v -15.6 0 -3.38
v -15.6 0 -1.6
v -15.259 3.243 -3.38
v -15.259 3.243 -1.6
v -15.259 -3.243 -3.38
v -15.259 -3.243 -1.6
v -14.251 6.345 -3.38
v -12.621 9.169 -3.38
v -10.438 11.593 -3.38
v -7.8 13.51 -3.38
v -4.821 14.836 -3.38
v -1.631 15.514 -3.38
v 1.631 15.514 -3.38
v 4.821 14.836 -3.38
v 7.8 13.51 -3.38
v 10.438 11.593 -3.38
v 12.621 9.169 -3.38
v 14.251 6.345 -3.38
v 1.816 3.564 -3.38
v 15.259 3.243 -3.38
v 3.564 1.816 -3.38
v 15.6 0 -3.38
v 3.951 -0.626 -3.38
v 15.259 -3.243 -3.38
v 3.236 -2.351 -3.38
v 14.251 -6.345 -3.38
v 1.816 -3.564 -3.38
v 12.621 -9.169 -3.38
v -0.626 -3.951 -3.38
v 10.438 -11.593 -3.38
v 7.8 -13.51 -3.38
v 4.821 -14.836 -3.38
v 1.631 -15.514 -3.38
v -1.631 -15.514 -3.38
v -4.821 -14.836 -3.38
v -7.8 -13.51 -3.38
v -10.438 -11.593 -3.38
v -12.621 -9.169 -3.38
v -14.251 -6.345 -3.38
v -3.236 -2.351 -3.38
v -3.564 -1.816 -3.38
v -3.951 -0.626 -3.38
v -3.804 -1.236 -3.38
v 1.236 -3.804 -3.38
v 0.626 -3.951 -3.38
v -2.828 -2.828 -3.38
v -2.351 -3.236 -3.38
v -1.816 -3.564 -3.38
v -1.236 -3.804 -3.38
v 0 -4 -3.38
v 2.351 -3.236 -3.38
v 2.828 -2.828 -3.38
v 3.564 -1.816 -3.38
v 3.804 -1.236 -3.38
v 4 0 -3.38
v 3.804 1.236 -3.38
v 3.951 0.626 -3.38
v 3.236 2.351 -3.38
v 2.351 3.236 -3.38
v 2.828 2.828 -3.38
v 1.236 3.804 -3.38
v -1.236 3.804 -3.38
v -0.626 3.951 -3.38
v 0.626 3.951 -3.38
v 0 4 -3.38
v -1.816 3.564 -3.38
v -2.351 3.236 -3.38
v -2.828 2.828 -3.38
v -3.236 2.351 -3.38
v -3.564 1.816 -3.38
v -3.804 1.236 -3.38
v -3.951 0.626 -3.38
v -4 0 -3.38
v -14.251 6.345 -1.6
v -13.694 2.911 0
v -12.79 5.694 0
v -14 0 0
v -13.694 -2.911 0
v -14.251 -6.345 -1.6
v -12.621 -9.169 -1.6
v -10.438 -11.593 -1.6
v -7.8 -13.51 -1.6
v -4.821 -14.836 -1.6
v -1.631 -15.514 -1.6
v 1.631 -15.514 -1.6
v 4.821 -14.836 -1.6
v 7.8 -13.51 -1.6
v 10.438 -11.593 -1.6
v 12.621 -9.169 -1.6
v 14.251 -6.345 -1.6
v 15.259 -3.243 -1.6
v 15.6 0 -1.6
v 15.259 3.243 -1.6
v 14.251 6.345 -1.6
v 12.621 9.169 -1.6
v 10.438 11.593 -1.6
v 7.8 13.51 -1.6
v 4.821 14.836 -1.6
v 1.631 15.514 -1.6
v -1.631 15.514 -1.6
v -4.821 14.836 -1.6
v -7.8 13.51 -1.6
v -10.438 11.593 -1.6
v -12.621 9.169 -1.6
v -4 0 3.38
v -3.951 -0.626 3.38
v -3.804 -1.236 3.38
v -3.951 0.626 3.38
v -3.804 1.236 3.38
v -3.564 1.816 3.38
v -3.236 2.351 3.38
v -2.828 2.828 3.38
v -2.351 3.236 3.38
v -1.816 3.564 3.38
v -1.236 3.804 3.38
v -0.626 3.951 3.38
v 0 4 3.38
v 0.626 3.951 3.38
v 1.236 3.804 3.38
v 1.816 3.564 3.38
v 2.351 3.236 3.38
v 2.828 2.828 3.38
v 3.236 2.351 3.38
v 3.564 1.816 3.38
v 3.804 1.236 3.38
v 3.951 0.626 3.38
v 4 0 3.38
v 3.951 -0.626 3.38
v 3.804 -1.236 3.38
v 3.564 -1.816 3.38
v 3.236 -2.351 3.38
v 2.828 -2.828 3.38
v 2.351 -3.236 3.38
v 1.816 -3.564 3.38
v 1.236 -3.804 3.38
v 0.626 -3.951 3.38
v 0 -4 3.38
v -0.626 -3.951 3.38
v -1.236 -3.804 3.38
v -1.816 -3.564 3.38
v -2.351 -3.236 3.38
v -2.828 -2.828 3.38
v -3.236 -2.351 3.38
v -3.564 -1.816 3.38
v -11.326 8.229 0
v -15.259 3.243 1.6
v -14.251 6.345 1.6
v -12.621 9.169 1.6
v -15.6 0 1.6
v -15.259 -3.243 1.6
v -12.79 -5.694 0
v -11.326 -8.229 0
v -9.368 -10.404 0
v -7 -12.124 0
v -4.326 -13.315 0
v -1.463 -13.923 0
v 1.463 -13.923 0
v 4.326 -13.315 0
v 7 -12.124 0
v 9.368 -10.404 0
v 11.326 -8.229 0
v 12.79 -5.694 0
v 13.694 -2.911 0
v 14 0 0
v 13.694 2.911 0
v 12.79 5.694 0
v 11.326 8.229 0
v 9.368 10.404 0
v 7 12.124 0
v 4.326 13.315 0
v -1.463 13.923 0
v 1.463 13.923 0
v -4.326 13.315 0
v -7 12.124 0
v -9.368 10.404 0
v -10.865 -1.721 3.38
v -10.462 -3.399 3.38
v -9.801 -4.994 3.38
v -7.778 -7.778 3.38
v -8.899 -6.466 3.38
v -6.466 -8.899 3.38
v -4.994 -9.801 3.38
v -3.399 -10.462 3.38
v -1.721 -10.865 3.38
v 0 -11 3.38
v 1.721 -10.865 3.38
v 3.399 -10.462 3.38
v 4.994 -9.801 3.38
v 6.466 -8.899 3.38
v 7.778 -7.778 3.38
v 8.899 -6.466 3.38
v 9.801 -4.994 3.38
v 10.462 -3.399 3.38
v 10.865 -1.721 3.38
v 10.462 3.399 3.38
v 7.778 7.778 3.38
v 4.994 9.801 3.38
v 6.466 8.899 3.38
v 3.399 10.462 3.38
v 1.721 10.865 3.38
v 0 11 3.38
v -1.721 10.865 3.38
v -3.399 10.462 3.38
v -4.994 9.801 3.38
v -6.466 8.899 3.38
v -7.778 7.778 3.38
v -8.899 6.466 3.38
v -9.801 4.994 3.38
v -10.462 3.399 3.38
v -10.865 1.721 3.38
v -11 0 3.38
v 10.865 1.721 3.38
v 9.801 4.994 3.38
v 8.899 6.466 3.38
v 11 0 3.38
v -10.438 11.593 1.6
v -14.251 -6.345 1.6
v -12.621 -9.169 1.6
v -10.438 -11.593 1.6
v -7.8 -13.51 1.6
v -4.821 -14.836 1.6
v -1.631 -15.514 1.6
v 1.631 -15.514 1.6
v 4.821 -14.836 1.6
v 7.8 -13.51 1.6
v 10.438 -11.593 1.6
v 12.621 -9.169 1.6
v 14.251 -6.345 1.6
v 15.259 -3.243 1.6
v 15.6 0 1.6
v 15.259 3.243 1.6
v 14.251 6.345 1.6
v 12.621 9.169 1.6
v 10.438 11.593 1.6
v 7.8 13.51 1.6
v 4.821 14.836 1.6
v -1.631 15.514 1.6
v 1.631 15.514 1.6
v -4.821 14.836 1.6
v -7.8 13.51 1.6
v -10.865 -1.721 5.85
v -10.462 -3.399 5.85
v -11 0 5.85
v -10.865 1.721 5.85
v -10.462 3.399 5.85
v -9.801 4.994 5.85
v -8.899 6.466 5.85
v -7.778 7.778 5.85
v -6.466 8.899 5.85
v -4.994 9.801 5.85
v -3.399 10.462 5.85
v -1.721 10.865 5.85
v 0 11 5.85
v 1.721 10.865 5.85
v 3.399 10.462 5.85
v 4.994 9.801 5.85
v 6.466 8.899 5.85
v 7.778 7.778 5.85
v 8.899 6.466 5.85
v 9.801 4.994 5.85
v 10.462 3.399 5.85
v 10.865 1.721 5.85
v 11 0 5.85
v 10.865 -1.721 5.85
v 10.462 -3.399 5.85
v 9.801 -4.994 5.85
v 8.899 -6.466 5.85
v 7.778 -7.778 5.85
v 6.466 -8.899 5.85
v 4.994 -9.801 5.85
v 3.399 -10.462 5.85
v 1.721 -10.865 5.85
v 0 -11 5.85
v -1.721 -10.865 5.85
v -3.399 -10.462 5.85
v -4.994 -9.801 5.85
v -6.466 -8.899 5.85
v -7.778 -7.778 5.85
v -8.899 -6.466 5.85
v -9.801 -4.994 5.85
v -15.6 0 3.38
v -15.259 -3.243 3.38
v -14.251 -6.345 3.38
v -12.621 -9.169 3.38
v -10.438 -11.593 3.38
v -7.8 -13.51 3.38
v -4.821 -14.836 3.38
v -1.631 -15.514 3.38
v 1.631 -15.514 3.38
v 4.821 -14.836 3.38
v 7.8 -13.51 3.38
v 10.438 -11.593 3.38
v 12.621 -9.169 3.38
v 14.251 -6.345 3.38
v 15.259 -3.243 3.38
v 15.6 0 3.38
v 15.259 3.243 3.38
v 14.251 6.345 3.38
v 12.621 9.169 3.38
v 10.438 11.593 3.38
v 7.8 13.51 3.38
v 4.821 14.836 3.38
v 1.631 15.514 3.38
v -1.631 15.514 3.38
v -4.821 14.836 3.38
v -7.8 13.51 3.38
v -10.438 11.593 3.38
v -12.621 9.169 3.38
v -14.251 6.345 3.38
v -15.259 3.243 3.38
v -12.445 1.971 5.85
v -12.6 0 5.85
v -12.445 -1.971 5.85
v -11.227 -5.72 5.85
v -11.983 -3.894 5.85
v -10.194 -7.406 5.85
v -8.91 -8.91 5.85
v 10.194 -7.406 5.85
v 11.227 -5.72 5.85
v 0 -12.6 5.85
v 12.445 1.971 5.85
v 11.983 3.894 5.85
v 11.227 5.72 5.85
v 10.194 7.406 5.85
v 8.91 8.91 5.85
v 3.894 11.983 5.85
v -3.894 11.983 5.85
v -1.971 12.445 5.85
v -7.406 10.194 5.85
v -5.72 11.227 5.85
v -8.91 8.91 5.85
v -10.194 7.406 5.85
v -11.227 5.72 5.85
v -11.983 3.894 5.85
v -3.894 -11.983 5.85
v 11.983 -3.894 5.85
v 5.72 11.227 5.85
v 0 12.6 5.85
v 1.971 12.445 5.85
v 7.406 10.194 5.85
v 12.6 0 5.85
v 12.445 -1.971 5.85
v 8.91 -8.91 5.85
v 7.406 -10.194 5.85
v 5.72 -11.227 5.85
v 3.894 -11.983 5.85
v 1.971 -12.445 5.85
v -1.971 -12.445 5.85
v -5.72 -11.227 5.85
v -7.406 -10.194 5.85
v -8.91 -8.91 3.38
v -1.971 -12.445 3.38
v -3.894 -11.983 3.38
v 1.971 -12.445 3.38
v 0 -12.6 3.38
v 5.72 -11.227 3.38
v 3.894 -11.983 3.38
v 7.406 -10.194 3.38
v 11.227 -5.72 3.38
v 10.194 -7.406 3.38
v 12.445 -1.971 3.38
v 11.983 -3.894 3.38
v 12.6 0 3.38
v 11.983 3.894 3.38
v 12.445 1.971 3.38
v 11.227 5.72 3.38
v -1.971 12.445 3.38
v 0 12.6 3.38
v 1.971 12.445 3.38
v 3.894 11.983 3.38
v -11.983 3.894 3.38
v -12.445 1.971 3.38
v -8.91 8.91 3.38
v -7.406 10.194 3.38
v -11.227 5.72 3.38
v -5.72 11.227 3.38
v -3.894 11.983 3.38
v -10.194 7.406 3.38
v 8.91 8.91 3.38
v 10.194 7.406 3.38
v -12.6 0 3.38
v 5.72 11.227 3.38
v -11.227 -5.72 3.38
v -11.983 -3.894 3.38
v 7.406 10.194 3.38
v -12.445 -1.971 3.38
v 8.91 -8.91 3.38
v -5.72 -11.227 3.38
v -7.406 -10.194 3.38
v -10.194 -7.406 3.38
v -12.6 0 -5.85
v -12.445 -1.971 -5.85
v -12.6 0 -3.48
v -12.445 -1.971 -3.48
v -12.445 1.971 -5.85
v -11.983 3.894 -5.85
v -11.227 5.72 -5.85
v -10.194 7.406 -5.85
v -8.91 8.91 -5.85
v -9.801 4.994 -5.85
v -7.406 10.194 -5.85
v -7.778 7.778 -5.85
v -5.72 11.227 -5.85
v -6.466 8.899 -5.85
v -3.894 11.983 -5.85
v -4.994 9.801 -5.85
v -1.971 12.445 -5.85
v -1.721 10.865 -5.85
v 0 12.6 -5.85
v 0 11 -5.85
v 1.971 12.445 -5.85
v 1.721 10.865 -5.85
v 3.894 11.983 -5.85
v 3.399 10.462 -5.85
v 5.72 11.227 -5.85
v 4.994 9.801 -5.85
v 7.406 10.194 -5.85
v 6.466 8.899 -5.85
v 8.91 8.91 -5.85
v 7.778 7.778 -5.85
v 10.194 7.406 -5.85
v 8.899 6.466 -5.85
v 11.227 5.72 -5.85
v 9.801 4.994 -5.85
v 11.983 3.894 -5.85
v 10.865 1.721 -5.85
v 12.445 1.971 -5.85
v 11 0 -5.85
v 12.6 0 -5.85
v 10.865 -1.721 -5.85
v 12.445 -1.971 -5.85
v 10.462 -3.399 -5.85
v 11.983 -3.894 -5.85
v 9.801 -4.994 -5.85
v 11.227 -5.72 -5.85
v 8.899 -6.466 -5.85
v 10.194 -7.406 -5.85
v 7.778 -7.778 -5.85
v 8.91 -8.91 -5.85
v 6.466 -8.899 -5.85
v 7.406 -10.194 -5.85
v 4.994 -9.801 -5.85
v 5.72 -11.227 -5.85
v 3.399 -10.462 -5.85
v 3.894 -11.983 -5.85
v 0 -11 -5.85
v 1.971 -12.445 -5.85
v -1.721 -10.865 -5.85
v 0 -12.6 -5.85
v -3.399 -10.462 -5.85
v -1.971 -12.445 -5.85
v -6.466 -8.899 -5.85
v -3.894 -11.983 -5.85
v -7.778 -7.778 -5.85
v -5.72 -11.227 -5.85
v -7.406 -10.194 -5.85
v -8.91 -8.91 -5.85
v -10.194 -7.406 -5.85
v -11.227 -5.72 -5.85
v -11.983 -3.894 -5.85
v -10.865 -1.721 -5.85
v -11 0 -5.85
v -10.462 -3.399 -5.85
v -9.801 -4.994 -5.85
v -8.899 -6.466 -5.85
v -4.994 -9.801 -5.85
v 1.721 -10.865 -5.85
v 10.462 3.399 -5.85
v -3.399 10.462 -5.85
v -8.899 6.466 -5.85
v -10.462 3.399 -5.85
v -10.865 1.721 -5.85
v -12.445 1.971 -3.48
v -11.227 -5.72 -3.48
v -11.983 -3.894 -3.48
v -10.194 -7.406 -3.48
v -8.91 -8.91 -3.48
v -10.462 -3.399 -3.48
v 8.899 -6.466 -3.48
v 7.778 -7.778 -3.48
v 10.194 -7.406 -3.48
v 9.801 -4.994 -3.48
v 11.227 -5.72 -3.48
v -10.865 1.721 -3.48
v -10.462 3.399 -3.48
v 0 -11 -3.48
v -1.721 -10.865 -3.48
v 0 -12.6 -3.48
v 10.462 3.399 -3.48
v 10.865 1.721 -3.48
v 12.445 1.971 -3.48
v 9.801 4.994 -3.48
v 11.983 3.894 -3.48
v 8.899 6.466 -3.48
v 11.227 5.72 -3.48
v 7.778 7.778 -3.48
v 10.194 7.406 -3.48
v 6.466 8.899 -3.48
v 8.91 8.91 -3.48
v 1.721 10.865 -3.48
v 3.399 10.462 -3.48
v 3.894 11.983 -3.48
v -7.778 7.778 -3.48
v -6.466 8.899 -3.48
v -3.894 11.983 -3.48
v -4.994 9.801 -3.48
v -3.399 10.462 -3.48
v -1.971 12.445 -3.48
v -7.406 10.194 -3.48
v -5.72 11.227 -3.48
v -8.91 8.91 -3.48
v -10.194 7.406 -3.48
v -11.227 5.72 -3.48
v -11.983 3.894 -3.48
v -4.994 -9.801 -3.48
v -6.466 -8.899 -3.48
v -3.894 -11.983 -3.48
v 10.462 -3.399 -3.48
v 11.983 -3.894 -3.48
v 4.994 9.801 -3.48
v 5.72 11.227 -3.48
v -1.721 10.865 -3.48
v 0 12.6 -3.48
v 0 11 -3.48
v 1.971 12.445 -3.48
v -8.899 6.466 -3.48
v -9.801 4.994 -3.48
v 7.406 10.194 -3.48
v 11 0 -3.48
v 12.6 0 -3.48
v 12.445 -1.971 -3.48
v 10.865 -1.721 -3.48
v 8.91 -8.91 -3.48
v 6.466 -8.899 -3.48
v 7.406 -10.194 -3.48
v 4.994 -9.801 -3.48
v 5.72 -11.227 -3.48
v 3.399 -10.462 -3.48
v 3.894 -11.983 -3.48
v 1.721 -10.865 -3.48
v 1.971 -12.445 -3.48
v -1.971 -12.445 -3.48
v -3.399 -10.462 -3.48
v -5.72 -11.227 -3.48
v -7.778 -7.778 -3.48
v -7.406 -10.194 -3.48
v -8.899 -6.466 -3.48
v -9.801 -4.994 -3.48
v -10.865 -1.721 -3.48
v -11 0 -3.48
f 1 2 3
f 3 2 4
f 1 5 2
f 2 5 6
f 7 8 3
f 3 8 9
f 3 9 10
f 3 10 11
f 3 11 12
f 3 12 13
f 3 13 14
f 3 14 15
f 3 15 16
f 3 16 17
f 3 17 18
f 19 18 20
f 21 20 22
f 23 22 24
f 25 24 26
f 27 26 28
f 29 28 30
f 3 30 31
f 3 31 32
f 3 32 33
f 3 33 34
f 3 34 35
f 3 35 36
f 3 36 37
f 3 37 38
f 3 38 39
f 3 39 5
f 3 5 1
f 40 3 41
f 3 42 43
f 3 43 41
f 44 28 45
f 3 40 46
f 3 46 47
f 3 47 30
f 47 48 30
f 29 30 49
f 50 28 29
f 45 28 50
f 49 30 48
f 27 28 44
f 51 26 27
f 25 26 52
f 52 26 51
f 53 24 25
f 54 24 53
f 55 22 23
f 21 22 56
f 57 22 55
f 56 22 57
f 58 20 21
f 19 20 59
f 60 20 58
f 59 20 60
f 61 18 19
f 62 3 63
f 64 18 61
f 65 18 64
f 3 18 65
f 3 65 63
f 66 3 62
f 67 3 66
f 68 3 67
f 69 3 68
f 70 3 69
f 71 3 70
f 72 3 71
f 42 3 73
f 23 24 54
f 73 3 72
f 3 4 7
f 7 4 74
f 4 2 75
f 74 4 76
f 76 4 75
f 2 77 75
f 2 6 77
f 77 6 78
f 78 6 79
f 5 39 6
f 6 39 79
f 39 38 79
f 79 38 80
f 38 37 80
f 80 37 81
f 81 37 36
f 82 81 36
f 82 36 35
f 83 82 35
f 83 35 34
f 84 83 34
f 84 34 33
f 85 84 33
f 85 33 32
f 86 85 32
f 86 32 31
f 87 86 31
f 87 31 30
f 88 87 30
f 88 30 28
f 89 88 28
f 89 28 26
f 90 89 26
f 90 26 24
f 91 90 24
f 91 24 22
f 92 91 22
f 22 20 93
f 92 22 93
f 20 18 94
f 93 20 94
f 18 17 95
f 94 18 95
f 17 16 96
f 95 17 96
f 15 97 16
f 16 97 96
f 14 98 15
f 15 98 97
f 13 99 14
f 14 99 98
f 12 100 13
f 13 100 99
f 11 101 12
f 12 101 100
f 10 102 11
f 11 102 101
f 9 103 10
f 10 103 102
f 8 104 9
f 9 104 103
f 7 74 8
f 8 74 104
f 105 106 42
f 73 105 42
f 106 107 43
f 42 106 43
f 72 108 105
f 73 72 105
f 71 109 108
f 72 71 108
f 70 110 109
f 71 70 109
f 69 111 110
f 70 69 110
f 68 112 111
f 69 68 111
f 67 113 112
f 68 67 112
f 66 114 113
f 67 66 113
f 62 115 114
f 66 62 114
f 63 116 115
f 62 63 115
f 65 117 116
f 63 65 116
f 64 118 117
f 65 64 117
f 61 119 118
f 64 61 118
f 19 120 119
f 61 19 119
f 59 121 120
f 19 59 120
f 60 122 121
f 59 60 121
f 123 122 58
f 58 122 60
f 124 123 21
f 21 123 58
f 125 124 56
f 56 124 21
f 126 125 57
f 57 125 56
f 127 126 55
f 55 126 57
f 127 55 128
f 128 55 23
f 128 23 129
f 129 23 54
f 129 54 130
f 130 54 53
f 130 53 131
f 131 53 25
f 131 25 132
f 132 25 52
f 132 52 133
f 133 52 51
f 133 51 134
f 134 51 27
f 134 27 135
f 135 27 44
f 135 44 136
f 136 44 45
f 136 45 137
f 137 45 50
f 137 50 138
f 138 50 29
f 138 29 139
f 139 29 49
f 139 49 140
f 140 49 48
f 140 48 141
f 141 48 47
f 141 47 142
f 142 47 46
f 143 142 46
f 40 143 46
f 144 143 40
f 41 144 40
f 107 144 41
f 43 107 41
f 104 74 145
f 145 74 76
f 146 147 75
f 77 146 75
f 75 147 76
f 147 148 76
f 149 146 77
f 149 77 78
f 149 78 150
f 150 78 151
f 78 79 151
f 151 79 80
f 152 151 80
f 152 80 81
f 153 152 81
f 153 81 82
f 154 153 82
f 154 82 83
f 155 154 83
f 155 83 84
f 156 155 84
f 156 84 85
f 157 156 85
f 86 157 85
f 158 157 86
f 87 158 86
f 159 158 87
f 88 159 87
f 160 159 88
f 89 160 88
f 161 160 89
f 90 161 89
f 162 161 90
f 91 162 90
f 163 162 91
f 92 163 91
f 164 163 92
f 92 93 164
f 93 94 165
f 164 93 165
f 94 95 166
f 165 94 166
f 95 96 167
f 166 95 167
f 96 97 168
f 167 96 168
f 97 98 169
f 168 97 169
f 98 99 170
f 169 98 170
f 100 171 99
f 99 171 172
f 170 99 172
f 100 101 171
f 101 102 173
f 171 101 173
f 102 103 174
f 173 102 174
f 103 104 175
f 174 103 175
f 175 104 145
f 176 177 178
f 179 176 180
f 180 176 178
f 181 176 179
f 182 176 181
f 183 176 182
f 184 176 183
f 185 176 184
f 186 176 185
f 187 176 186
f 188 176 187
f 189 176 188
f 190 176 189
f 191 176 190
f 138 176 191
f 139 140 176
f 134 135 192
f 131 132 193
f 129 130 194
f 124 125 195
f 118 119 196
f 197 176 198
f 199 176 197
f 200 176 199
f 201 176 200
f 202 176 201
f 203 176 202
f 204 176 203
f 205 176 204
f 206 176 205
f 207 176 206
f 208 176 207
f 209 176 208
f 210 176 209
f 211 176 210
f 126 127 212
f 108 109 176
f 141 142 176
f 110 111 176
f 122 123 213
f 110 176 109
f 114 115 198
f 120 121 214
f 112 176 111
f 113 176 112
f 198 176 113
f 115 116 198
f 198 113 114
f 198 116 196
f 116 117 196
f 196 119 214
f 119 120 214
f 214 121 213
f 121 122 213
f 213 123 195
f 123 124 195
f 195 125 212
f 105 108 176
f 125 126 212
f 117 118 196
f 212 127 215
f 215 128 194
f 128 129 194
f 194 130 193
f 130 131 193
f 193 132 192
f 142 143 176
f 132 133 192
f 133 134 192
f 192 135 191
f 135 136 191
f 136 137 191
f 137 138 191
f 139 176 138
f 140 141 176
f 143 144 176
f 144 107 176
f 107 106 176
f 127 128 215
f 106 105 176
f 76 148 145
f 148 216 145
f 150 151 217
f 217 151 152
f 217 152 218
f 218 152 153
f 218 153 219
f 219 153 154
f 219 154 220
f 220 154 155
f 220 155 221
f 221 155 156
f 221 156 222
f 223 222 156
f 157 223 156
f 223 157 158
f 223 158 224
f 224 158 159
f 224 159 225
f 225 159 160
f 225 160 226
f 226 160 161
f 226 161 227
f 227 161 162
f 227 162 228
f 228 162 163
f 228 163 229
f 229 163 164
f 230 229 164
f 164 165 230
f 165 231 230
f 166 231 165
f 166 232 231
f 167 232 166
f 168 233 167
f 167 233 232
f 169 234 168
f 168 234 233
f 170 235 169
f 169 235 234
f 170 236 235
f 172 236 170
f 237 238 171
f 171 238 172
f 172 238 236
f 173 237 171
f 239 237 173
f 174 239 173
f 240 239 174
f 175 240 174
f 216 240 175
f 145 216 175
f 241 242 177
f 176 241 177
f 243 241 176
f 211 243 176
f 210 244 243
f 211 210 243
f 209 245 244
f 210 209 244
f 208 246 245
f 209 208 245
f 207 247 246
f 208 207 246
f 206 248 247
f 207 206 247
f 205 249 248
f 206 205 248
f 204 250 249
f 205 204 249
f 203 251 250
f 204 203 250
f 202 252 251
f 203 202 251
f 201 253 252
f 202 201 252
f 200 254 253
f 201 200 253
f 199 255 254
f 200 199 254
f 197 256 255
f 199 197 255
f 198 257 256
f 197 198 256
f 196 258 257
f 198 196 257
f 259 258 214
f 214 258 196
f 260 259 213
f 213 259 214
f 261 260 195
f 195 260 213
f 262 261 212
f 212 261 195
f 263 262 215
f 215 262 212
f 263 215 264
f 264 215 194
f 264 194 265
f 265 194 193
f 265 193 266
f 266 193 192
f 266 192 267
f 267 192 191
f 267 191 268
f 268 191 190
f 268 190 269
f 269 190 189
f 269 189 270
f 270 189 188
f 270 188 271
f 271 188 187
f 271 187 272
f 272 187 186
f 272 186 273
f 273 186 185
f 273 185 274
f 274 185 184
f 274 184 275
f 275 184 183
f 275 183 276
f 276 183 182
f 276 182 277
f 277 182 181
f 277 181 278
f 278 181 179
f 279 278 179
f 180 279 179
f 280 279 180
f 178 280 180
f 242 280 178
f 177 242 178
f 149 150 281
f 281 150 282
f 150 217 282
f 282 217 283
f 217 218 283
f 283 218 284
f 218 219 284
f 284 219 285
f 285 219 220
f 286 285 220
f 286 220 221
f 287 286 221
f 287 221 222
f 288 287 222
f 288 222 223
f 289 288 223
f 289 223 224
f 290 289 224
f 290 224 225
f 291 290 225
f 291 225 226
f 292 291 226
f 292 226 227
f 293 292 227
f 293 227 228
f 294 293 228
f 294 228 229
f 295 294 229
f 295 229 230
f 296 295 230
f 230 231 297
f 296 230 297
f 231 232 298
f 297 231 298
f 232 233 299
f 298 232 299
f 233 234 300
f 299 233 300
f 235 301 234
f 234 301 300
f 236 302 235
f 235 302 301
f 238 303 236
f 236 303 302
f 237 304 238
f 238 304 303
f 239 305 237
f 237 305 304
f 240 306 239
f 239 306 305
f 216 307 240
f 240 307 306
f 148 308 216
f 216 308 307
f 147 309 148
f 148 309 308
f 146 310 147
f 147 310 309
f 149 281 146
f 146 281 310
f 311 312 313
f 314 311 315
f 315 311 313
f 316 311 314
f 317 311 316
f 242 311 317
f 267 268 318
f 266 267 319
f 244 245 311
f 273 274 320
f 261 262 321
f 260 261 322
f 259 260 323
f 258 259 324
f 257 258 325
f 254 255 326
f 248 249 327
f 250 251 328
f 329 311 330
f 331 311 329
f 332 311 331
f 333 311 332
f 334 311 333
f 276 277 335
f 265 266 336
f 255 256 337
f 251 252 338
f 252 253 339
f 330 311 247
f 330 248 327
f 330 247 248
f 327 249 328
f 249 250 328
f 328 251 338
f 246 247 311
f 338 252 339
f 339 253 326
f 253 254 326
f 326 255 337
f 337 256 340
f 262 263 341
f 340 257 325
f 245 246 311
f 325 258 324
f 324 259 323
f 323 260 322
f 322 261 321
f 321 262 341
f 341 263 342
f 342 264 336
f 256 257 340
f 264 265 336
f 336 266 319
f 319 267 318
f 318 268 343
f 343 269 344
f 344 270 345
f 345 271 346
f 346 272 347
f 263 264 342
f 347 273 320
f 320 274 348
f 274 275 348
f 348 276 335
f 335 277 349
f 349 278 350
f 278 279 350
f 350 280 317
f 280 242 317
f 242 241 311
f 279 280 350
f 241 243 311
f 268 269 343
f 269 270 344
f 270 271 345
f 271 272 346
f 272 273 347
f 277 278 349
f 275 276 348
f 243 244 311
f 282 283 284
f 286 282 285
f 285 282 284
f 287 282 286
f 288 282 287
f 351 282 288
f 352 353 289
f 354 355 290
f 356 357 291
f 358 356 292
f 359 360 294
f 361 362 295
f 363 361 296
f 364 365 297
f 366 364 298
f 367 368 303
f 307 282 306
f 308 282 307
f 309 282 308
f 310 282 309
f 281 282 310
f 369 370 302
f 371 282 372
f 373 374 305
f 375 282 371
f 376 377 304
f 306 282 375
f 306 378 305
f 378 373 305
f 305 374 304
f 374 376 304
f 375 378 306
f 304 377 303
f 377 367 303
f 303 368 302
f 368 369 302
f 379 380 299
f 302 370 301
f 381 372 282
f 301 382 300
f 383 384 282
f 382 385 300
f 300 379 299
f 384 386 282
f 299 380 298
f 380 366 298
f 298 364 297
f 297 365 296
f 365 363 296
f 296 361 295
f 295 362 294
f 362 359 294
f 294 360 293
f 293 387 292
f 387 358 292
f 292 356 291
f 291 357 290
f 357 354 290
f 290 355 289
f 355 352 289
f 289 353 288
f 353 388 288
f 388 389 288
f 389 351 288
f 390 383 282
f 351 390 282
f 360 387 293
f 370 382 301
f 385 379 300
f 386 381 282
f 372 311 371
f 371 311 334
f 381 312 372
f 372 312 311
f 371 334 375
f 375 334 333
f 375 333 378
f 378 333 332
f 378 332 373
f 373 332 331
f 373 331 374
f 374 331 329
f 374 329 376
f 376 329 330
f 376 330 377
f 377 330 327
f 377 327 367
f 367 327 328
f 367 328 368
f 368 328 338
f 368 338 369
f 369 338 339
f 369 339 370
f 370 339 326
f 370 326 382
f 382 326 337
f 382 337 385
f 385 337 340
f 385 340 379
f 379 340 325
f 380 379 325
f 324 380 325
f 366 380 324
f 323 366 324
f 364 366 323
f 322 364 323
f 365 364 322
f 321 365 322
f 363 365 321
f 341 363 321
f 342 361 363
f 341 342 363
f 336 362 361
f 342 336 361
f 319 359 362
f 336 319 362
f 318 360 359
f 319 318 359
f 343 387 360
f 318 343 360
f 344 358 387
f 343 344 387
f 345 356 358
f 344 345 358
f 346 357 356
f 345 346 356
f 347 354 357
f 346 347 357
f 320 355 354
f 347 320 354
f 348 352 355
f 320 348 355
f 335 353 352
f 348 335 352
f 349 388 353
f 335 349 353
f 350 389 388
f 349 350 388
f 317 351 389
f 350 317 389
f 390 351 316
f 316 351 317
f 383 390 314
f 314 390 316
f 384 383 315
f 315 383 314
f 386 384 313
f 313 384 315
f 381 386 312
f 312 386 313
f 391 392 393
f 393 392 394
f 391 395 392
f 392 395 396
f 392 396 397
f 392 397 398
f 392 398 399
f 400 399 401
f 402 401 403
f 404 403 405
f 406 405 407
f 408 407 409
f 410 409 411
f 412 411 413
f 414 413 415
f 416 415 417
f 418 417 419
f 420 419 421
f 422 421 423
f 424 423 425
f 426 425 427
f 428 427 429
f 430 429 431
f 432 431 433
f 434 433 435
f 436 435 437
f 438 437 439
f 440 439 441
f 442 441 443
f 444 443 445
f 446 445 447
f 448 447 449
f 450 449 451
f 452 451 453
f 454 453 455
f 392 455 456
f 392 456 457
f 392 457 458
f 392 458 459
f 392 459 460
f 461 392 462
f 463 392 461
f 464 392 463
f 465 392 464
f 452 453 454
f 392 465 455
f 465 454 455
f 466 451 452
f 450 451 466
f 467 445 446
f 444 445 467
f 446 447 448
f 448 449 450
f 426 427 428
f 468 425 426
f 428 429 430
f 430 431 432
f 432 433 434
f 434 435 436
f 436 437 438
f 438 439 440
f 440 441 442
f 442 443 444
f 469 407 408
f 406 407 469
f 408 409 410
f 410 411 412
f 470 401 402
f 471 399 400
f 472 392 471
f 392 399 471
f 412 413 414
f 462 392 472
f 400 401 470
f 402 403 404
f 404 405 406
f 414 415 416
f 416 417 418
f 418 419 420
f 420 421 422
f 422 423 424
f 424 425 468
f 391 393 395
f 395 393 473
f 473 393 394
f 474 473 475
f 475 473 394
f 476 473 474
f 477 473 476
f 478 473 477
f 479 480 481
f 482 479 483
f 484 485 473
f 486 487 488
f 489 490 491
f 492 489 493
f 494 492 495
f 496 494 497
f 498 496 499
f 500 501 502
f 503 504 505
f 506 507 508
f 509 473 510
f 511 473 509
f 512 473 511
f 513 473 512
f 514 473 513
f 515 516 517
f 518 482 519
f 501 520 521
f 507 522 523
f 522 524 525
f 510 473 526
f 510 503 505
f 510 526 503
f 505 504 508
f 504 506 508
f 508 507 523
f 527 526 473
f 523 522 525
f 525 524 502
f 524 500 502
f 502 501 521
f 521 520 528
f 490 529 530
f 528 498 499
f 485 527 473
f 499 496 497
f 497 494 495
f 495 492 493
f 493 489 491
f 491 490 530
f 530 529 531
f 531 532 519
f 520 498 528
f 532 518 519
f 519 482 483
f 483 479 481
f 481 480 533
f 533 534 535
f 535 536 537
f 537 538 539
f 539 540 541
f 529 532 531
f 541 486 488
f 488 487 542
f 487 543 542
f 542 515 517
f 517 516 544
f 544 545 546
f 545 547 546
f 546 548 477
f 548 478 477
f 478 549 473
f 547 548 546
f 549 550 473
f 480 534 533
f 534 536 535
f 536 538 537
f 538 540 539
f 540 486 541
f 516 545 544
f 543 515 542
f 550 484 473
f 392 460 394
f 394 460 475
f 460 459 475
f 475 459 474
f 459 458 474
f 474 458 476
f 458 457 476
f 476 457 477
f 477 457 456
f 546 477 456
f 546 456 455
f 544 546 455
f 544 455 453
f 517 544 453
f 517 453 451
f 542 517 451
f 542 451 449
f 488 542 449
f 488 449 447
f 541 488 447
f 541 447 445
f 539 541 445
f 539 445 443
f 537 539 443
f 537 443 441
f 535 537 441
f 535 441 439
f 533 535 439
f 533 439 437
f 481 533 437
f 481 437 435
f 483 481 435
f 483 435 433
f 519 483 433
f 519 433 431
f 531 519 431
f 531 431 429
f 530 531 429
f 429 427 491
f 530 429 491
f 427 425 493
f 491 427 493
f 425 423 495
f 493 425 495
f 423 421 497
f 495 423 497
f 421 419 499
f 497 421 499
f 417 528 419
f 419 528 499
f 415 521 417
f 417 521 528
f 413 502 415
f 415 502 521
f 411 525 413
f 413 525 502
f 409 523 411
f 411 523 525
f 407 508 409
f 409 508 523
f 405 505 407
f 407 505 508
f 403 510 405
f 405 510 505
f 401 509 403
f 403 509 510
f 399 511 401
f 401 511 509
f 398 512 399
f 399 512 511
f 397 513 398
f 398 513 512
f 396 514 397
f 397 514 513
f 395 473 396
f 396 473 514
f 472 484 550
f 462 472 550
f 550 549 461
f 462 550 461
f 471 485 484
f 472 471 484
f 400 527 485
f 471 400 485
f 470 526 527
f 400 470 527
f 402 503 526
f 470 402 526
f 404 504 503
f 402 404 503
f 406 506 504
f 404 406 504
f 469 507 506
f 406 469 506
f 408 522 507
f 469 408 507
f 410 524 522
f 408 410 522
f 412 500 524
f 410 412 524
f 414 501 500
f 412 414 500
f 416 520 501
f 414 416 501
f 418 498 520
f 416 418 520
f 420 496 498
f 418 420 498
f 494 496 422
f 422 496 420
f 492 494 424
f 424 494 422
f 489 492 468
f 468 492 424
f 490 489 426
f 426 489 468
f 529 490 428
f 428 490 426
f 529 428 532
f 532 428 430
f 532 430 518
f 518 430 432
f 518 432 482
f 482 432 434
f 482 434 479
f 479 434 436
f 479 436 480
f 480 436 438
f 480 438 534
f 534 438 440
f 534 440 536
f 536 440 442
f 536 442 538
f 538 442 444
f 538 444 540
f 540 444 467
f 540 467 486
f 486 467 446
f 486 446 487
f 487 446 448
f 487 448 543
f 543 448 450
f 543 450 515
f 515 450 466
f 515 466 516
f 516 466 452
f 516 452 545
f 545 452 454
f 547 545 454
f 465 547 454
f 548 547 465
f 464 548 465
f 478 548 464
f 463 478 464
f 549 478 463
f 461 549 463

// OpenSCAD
// steve grabers W wheel
od= 31.2;
id= 28;
t= (od-id);
thick= 11.7;
t2= thick-t;

wheel_id= 22.0; // the diameter of the outside hole
wheel_d= 2.47; // the depth from the outside of the wheel to the bearing
wheel_groove_d= 2.5; // the depth of the groove on the outside of the wheel
wheel_groove_w= 3; // the width of the groove on the outside of the wheel

bearingThickness= 7;
bearingOD= 22;
bearingID= 8;

function w_wheel_dia()= od;
function w_wheel_width()= thick;
function w_wheel_id()= wheel_id;
function w_wheel_indent()= wheel_d-0.1;

module W_wheel() {
	cylinder(r1=od/2,r2=id/2, h=t/2);
	translate([0,0,t/2]) cylinder(r2=od/2,r1=id/2, h=t/2);
	translate([0,0,t]) cylinder(r=od/2, h= t2/2);
	translate([0,0,-t2/2]) cylinder(r=od/2, h= t2/2);
}

module groove() {
	// make a negative of the cutout so it can be differenced
	difference() {
		cylinder(r=od/2+0.1, h=wheel_groove_d+0.1, $fn=40);
		cylinder(r=od/2-wheel_groove_w, h=wheel_groove_d, $fn=40);
	}
}

module w_wheel() {
	difference() {
		translate([0,0,-t/2]) W_wheel();
		#translate([0,0,-(thick+4)/2]) cylinder(r=bearingID/2, h=thick+4, $fn=40);
		translate([0,0,thick/2-wheel_d]) cylinder(r=wheel_id/2, h=wheel_d+0.1, $fn=40);
		translate([0,0,-thick/2-wheel_d-0.1+wheel_d]) cylinder(r=wheel_id/2, h=wheel_d+0.1, $fn=40);
		translate([0,0,thick/2-wheel_d]) groove();
		translate([0,0,-thick/2-wheel_groove_d-0.1+wheel_d]) groove();
	}
}

module w_wheel_vertical() {
	rotate([0,90,0]) w_wheel();
}

w_wheel();
//w_wheel_vertical();
//W_wheel();
